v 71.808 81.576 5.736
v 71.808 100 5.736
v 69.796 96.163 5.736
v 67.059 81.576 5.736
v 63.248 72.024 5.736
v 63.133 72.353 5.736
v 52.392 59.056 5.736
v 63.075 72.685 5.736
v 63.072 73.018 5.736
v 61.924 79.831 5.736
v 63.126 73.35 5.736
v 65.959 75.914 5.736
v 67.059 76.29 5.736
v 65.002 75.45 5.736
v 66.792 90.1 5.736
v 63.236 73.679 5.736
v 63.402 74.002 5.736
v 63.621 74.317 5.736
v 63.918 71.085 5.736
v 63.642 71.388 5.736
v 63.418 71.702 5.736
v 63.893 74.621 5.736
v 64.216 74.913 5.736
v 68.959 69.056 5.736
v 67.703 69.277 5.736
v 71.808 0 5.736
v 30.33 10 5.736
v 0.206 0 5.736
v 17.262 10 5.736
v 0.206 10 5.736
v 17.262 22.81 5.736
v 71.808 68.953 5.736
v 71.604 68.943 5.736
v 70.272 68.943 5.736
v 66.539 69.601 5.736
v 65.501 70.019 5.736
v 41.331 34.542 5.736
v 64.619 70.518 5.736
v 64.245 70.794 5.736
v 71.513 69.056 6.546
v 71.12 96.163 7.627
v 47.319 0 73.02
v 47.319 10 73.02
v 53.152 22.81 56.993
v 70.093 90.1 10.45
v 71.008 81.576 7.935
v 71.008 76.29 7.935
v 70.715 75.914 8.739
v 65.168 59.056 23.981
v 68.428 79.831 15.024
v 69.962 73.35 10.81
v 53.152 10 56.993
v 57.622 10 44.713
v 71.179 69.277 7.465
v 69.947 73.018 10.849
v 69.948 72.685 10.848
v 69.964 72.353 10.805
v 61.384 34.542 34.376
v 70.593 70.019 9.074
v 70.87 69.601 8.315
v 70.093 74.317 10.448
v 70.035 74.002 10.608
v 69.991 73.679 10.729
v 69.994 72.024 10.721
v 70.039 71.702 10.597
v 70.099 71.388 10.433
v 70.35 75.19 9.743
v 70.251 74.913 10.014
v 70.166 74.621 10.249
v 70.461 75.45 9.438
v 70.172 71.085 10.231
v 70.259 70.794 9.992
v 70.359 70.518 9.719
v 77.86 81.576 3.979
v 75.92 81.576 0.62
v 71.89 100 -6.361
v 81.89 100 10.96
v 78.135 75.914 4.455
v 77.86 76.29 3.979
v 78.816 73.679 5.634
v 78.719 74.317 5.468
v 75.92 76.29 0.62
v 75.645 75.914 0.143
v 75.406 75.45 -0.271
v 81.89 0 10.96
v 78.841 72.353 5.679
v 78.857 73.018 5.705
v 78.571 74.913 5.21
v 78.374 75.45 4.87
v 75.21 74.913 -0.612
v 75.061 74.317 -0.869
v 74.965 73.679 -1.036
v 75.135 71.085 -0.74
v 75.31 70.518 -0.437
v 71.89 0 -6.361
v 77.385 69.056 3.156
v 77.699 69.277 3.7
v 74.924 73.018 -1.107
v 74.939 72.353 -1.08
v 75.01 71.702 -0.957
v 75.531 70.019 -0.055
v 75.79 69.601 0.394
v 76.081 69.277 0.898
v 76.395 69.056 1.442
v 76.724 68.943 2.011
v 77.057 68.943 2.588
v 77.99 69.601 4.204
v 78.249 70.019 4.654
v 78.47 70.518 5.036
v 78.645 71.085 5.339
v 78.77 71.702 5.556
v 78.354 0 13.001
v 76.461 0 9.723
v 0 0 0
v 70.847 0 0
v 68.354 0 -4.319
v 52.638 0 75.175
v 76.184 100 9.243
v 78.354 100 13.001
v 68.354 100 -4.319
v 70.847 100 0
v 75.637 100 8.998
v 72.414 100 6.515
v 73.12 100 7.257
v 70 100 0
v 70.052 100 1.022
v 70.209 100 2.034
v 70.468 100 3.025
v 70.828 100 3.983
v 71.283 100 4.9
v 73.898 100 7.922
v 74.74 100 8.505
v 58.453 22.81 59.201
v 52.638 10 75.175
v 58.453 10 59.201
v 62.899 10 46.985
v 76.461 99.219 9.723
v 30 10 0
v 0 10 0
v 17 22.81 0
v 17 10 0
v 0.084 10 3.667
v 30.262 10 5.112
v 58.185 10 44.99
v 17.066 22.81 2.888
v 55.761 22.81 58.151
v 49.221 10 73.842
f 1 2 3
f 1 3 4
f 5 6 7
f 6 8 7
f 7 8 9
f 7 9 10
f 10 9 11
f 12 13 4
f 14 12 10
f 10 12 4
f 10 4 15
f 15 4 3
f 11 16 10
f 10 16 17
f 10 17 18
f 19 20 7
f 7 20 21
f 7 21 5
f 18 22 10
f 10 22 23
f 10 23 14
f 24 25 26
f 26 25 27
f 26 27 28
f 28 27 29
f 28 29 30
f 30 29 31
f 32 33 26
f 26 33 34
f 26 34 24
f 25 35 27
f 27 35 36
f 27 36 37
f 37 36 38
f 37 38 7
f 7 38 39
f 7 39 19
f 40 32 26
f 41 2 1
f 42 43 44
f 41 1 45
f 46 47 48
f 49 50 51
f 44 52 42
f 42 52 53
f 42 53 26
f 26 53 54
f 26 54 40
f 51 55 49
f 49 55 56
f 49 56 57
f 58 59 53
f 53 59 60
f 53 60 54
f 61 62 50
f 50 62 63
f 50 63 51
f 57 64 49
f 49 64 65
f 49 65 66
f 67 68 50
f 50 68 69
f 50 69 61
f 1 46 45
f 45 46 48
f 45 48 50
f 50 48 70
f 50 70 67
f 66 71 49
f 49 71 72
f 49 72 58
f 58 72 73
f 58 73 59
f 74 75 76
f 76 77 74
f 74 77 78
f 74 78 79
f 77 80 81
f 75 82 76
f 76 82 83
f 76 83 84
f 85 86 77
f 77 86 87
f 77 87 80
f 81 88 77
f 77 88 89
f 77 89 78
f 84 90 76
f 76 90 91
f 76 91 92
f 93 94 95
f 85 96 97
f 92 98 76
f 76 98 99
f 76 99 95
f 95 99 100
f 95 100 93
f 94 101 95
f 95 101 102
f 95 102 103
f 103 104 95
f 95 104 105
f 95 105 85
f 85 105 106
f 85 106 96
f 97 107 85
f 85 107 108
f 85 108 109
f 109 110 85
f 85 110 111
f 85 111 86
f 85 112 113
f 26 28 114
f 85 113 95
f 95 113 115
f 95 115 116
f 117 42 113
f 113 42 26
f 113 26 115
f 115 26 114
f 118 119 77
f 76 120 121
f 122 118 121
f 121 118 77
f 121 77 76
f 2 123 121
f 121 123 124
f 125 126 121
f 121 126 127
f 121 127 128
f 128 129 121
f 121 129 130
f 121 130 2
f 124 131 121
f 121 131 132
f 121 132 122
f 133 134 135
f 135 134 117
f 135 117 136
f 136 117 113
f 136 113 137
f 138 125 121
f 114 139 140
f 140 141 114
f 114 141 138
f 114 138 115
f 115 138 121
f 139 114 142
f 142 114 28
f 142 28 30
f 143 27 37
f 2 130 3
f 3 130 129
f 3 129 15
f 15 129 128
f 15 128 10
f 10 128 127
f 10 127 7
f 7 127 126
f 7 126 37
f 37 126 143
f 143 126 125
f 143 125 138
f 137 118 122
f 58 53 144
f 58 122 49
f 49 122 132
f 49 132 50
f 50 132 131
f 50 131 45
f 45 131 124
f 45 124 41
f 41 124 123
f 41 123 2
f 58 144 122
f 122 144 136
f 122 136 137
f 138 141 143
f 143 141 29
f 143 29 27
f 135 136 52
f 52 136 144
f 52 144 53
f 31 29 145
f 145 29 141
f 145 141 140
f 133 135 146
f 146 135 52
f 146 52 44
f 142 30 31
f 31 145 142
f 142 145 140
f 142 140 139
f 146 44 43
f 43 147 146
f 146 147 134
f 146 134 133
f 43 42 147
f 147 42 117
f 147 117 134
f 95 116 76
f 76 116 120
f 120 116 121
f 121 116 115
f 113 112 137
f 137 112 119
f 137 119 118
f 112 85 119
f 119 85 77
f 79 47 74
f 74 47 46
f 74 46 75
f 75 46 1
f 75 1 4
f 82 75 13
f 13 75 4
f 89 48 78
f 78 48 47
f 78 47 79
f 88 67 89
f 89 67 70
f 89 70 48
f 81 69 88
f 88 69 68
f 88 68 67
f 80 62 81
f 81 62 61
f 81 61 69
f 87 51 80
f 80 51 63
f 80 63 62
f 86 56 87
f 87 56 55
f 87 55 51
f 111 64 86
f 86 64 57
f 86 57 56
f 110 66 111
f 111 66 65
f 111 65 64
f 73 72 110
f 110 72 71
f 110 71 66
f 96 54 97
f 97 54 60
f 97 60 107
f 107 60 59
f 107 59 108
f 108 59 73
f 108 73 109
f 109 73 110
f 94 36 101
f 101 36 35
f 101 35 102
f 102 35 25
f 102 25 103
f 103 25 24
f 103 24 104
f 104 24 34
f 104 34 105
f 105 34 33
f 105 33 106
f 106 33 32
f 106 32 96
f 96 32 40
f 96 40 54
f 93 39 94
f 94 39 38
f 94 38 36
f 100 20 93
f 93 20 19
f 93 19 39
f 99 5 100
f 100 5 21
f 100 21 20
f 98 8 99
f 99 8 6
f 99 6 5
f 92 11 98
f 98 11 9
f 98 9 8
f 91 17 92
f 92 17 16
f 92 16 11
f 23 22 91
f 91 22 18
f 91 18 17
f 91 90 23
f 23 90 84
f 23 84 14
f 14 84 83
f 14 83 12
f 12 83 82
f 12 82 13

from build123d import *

# Parameters (mm, degrees)
REVOLVE1_ANGLE          = 70
CUT_EXTRUDE1_DEPTH      = 149.496943463
CUT_EXTRUDE1_DEPTH_BACK = 149.496943463
BOSS_EXTRUDE1_DEPTH     = 100
CUT_EXTRUDE2_DEPTH      = 100
CUT_EXTRUDE2_DEPTH_BACK = 100
CUT_EXTRUDE4_DEPTH      = 100


with BuildPart() as part:
    # Sketch3 → Revolve1 (revolve)
    with BuildSketch(Plane.XY):
        Polygon((0, 0), (80, 0), (80, 100), (70, 100), (30, 10), (17, 10), (17, 22.809585309), (0, 10), align=None)
    revolve(axis=Axis((80, 0, 0), (0, 1, 0)), revolution_arc=REVOLVE1_ANGLE)

    # Sketch5 → Cut-Extrude1 (cut, two sides: drawn at the far end of the back side and taken through both)
    with BuildSketch(Plane(origin=(0, 0, 0), x_dir=(1, 0, 0), z_dir=(0, 1, 0)).offset(-CUT_EXTRUDE1_DEPTH_BACK)):
        Polygon((0.205883631, -5.735764364), (71.808479557, -5.735764364), (47.318949436, -73.020195385), (2.210062516, -73.020195385), align=None)
    extrude(amount=CUT_EXTRUDE1_DEPTH + CUT_EXTRUDE1_DEPTH_BACK, mode=Mode.SUBTRACT)

    # Sketch7 → Boss-Extrude1 (add)
    with BuildSketch(Plane(origin=(0, 100, 0), x_dir=(1, 0, 0), z_dir=(0, 1, 0))):
        Polygon((71.890204546, 6.360873716), (81.890204546, -10.95963436), (78.353805314, -13.001375409), (68.353805314, 4.319132667), align=None)
    extrude(amount=-BOSS_EXTRUDE1_DEPTH)

    # Sketch8 → Cut-Extrude2 (cut, two sides: drawn at the far end of the back side and taken through both)
    with BuildSketch(Plane(origin=(0, 0, 0), x_dir=(1, 0, 0), z_dir=(0, 1, 0)).offset(-CUT_EXTRUDE2_DEPTH_BACK)):
        Polygon((71.890204546, 6.360873716), (81.890204546, -10.95963436), (87.183786138, 1.252005023), align=None)
    extrude(amount=CUT_EXTRUDE2_DEPTH + CUT_EXTRUDE2_DEPTH_BACK, mode=Mode.SUBTRACT)

    # Sketch9 → Cut-Extrude4 (cut)
    with BuildSketch(Plane(origin=(56.671992524, 0, -32.719590139), x_dir=(-0.4999999999999999, 0, -0.8660254037844387), z_dir=(0.8660254037844388, 0, -0.49999999999999994))):
        with BuildLine():
            Line((-42.376179883, 81.575757576), (-38.496668208, 81.575757576))
            Line((-38.496668208, 81.575757576), (-38.496668208, 76.289944384))
            ThreePointArc((-38.496668208, 76.289944384), (-40.436424045, 68.929279342), (-42.376179883, 76.289944384))
            Line((-42.376179883, 76.289944384), (-42.376179883, 81.575757576))
        make_face()
    extrude(amount=-CUT_EXTRUDE4_DEPTH, mode=Mode.SUBTRACT)


solid = part.part
